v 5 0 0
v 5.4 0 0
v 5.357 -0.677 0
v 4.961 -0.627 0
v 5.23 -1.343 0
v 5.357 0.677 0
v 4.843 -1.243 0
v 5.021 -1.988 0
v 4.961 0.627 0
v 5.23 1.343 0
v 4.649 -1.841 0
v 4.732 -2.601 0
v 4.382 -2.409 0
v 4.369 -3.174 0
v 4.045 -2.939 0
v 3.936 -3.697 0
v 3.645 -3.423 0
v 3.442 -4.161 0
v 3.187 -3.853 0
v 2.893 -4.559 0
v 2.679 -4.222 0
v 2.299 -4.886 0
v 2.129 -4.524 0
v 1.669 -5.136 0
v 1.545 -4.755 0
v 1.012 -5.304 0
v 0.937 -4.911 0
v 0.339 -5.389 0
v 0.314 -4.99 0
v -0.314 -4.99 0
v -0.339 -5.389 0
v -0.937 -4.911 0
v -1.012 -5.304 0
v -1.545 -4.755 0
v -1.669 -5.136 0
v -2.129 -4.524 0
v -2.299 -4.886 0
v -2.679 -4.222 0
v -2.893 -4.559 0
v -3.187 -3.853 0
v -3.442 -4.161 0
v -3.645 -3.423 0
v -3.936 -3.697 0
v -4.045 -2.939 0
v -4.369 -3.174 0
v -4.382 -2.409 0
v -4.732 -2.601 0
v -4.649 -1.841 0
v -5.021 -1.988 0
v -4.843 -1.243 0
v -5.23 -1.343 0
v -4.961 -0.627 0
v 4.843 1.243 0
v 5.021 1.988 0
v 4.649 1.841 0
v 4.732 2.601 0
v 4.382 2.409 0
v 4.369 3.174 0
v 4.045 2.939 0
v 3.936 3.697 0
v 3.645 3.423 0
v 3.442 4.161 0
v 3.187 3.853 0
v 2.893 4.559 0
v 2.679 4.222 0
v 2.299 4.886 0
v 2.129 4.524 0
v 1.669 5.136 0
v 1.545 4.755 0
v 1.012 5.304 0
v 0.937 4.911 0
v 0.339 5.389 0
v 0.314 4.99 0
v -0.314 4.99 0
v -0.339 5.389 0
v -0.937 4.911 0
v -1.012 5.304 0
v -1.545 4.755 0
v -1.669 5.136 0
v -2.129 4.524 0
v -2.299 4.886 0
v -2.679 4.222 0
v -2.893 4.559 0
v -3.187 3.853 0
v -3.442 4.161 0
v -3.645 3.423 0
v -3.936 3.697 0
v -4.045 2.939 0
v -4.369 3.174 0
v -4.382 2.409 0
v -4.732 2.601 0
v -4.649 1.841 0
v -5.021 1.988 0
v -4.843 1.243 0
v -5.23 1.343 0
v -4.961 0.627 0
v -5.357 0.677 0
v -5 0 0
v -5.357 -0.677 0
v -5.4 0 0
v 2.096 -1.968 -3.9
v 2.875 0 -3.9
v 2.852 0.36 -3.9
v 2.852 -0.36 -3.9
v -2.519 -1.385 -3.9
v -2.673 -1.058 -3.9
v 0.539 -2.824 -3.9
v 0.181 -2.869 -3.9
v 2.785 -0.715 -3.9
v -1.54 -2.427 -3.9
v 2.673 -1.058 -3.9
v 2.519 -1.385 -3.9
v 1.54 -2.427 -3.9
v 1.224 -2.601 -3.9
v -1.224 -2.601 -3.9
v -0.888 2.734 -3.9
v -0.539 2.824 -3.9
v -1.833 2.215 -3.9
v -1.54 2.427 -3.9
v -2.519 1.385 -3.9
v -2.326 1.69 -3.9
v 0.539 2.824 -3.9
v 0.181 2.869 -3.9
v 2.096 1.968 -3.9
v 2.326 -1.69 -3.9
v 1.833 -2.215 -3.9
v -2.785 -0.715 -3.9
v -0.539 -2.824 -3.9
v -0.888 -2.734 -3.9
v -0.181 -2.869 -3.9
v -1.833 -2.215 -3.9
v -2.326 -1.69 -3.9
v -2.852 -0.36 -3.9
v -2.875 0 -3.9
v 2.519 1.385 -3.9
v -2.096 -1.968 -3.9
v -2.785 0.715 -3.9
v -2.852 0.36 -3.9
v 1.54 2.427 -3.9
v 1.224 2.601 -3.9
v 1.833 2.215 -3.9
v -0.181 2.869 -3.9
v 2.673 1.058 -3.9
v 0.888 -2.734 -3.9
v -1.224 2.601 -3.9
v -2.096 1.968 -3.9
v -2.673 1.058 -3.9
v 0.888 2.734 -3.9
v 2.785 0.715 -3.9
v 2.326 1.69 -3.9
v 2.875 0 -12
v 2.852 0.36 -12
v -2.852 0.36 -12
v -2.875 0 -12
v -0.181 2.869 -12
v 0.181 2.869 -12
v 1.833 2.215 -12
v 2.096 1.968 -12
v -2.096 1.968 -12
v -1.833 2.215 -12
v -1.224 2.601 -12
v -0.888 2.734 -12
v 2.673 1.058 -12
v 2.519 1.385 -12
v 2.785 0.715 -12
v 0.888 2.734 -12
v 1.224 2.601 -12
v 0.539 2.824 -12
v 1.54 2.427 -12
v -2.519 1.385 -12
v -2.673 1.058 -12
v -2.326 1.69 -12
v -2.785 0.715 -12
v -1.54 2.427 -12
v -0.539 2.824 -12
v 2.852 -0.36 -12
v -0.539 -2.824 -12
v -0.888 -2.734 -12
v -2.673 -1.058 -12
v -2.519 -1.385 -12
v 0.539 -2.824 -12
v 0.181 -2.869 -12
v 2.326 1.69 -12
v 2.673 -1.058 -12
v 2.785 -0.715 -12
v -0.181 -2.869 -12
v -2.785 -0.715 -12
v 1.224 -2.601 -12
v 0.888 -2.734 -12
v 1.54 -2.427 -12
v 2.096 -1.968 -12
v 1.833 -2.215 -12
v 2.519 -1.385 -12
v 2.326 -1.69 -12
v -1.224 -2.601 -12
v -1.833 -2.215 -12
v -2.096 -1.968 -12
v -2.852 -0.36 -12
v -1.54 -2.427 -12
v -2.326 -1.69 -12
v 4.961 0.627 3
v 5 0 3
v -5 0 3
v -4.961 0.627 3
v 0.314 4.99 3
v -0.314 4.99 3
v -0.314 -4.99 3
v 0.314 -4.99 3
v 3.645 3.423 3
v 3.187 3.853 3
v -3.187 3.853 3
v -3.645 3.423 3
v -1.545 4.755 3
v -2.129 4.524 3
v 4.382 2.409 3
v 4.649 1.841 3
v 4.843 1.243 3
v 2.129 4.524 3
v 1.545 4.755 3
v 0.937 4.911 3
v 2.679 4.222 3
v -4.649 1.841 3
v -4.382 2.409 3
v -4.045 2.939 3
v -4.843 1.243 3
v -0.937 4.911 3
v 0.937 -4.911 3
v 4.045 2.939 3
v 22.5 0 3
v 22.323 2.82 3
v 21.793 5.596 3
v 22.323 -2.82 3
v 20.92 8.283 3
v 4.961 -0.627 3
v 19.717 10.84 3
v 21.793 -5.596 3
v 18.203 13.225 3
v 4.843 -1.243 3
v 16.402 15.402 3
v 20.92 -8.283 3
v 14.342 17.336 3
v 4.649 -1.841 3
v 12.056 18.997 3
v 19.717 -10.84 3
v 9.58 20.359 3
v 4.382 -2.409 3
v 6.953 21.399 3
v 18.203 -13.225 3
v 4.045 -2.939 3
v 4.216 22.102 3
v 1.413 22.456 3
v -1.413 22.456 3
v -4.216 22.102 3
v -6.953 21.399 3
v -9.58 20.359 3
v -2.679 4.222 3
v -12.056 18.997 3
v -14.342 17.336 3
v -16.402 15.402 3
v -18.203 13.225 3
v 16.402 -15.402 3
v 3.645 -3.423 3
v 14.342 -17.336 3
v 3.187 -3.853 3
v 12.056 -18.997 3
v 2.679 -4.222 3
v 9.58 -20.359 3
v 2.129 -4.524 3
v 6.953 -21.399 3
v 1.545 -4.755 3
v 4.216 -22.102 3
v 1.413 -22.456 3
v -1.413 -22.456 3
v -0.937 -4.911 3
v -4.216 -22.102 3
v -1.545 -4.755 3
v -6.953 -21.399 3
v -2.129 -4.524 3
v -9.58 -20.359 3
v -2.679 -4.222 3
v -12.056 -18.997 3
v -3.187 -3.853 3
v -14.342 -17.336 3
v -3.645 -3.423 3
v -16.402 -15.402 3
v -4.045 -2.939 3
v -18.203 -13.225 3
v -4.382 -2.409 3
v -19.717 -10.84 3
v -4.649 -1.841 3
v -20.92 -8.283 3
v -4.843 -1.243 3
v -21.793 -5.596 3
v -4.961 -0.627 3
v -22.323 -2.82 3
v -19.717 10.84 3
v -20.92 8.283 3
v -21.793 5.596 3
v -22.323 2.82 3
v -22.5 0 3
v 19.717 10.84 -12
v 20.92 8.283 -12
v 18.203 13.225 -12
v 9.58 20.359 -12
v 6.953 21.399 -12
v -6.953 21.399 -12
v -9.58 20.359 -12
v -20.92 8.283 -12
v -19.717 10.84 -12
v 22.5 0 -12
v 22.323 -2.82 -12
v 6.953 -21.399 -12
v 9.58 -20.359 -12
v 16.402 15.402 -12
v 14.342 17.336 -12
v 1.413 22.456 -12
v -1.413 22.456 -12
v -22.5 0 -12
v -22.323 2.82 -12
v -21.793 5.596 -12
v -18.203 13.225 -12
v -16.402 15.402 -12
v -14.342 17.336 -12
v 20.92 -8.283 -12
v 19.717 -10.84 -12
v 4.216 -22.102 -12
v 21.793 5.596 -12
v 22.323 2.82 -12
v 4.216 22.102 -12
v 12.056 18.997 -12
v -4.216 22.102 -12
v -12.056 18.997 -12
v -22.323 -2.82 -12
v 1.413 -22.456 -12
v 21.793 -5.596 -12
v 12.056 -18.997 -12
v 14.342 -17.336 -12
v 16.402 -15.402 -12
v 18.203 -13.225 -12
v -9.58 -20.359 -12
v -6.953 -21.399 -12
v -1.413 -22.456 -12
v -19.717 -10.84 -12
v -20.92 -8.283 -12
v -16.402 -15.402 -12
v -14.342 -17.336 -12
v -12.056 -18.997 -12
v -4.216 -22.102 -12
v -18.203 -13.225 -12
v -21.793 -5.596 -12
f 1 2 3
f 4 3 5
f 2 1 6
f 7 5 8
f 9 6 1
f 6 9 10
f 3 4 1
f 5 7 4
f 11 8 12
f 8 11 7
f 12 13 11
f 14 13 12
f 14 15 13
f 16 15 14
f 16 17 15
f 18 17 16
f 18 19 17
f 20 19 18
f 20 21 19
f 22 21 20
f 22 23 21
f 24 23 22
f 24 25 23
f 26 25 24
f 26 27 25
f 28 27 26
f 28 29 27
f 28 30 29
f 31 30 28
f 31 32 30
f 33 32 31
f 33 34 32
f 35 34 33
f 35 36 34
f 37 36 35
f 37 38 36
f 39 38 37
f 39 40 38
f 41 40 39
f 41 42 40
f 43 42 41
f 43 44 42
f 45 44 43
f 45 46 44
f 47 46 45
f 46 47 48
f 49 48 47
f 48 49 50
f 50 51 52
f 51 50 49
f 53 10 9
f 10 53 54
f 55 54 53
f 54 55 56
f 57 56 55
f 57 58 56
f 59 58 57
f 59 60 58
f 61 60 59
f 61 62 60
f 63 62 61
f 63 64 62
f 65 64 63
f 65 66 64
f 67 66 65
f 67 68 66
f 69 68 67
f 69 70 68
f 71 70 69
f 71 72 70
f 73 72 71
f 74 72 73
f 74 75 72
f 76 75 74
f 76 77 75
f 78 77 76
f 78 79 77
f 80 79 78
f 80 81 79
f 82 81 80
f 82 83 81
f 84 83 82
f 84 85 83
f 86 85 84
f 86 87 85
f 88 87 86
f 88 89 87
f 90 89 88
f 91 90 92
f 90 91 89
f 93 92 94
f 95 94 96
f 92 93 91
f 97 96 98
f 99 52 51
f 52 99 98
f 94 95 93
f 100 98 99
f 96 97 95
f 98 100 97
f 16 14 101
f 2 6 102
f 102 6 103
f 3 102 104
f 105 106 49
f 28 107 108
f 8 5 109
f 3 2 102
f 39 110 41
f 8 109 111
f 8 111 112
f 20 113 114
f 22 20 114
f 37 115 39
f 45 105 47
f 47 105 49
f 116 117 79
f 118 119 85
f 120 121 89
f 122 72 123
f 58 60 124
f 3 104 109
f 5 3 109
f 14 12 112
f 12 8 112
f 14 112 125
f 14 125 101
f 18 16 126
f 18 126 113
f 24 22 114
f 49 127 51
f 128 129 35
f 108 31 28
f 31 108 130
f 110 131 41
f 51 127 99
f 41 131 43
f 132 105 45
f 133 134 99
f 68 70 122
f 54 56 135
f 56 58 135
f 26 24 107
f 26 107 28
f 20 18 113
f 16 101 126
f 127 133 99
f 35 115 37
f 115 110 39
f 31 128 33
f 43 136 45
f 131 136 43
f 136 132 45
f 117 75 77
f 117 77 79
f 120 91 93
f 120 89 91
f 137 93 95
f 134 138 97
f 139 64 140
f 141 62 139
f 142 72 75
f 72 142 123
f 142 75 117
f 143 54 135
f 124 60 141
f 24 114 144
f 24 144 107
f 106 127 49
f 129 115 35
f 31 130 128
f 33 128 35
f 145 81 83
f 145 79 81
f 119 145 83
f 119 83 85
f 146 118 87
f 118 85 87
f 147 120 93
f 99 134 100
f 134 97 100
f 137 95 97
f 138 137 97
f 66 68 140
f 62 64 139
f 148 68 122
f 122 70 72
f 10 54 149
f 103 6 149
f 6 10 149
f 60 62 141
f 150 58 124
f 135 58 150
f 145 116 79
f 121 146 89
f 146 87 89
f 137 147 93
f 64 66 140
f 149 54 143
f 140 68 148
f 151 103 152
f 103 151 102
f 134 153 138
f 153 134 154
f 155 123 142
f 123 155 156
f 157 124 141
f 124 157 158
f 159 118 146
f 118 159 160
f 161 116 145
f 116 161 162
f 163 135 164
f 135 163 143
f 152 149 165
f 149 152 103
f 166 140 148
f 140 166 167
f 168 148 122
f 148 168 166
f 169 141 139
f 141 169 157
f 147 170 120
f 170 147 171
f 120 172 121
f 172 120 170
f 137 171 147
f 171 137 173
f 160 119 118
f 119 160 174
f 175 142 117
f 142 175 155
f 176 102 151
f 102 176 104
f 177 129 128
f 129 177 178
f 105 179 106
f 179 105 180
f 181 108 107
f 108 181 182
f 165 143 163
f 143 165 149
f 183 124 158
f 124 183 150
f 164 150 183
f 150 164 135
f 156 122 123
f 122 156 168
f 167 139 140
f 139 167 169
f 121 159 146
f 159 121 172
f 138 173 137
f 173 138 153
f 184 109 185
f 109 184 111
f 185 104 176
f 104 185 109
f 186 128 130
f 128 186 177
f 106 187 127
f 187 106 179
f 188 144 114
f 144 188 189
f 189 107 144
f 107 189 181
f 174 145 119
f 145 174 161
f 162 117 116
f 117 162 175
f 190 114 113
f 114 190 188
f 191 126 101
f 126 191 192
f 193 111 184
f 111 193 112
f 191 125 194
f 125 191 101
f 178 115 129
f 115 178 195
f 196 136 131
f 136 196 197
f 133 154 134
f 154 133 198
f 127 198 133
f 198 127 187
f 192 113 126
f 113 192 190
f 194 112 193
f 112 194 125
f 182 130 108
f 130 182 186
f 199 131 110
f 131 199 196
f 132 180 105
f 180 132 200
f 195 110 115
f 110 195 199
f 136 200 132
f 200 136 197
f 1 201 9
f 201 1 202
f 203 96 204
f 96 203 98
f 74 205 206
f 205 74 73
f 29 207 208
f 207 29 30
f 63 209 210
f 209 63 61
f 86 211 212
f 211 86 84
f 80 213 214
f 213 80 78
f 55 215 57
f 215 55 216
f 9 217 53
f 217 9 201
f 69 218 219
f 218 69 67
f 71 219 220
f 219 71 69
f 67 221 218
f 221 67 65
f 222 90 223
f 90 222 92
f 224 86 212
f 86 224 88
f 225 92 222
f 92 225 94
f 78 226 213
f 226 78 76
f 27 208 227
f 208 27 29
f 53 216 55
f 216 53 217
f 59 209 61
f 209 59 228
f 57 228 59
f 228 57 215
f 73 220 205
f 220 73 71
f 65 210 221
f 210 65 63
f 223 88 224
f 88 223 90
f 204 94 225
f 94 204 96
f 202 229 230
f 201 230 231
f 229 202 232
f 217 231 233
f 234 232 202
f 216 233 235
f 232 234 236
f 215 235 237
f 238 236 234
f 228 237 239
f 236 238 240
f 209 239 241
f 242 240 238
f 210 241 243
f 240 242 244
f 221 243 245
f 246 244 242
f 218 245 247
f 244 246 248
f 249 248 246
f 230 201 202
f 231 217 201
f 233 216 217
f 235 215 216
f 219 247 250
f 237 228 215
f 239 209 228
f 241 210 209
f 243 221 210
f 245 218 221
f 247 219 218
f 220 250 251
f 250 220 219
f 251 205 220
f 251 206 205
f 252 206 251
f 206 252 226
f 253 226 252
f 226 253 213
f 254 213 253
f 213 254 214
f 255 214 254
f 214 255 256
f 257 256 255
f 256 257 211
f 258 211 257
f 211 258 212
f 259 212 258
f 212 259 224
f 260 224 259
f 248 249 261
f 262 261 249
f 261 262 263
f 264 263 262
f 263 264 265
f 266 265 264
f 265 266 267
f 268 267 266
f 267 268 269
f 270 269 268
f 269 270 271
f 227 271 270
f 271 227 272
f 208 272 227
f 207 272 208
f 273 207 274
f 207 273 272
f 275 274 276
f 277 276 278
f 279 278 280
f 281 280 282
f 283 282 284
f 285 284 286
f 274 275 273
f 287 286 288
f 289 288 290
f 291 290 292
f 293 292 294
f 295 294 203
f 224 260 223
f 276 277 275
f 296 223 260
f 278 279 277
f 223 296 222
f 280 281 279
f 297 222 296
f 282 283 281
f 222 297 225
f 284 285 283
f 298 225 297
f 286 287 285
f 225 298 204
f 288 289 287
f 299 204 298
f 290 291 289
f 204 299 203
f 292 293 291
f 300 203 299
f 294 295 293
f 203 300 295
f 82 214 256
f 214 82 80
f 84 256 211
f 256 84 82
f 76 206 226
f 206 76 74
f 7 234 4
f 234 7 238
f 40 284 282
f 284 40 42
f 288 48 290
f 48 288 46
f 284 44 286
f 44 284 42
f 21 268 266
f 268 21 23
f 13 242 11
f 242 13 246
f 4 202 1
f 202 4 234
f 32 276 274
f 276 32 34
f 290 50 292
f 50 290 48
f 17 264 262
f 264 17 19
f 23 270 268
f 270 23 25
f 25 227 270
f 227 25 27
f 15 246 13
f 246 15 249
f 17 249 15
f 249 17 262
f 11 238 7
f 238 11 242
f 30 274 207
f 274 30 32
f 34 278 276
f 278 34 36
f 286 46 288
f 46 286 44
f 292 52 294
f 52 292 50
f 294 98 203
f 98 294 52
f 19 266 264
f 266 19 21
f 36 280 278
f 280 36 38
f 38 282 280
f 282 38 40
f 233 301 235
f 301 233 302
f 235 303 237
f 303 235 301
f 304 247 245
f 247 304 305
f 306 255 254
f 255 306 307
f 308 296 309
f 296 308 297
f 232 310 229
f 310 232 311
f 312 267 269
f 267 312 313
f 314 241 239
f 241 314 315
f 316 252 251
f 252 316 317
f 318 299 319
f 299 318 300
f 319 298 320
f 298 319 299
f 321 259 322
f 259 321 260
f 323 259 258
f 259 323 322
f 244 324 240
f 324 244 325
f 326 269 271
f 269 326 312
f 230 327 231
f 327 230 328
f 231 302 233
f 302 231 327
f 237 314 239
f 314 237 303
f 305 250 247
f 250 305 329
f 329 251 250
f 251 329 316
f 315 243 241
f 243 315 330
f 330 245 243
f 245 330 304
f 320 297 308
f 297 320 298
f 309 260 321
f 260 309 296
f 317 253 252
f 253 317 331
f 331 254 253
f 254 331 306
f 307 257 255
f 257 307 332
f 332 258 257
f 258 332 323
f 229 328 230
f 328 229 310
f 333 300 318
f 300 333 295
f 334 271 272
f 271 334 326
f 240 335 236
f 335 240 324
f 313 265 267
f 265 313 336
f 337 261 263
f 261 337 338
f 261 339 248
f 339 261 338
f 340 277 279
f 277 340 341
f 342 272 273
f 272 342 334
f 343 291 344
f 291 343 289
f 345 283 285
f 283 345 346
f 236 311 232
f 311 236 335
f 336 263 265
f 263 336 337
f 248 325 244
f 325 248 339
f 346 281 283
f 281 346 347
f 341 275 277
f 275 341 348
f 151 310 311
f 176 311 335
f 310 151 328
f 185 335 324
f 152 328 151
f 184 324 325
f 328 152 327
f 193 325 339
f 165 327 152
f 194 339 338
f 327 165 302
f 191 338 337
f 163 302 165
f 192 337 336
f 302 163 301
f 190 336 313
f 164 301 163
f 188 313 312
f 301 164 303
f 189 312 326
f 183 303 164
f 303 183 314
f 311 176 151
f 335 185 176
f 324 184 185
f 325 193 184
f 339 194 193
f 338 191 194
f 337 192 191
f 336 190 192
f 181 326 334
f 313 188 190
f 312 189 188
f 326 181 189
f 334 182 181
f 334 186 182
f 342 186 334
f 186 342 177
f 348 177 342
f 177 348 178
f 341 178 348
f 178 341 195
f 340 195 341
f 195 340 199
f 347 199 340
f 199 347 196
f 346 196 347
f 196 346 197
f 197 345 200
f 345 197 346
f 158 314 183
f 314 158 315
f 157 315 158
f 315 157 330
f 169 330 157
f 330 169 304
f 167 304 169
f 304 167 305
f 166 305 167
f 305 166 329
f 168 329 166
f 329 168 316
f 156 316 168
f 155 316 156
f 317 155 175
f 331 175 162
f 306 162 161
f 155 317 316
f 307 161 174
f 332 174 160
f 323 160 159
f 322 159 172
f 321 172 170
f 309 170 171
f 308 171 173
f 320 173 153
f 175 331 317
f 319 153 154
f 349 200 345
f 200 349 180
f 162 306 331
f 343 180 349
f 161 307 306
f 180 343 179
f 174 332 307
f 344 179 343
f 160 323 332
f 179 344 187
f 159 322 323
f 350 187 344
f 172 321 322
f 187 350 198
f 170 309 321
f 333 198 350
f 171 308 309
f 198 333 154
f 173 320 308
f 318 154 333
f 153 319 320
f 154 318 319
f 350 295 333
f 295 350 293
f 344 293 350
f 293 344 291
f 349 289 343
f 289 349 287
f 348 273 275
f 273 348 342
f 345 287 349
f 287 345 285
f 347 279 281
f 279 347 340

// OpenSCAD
$fn = 50;

difference() {
	union() {
		translate(v = [0, 0, -12.0]) {
			cylinder(h = 15, r = 22.5);
		}
	}
	union() {
		translate(v = [0, 0, 0]) {
			rotate(a = [0, 0, 0]) {
				difference() {
					union() {
						translate(v = [0, 0, -15.0]) {
							cylinder(h = 15, r = 2.6);
						}
						translate(v = [0, 0, -3.9]) {
							cylinder(h = 3.9, r1 = 2.875, r2 = 5.4);
						}
						translate(v = [0, 0, -15.0]) {
							cylinder(h = 15, r = 2.875);
						}
						translate(v = [0, 0, -15.0]) {
							cylinder(h = 15, r = 2.6);
						}
					}
					union();
				}
			}
		}
		#cylinder(h = 3, r = 5.0);
	}
}
